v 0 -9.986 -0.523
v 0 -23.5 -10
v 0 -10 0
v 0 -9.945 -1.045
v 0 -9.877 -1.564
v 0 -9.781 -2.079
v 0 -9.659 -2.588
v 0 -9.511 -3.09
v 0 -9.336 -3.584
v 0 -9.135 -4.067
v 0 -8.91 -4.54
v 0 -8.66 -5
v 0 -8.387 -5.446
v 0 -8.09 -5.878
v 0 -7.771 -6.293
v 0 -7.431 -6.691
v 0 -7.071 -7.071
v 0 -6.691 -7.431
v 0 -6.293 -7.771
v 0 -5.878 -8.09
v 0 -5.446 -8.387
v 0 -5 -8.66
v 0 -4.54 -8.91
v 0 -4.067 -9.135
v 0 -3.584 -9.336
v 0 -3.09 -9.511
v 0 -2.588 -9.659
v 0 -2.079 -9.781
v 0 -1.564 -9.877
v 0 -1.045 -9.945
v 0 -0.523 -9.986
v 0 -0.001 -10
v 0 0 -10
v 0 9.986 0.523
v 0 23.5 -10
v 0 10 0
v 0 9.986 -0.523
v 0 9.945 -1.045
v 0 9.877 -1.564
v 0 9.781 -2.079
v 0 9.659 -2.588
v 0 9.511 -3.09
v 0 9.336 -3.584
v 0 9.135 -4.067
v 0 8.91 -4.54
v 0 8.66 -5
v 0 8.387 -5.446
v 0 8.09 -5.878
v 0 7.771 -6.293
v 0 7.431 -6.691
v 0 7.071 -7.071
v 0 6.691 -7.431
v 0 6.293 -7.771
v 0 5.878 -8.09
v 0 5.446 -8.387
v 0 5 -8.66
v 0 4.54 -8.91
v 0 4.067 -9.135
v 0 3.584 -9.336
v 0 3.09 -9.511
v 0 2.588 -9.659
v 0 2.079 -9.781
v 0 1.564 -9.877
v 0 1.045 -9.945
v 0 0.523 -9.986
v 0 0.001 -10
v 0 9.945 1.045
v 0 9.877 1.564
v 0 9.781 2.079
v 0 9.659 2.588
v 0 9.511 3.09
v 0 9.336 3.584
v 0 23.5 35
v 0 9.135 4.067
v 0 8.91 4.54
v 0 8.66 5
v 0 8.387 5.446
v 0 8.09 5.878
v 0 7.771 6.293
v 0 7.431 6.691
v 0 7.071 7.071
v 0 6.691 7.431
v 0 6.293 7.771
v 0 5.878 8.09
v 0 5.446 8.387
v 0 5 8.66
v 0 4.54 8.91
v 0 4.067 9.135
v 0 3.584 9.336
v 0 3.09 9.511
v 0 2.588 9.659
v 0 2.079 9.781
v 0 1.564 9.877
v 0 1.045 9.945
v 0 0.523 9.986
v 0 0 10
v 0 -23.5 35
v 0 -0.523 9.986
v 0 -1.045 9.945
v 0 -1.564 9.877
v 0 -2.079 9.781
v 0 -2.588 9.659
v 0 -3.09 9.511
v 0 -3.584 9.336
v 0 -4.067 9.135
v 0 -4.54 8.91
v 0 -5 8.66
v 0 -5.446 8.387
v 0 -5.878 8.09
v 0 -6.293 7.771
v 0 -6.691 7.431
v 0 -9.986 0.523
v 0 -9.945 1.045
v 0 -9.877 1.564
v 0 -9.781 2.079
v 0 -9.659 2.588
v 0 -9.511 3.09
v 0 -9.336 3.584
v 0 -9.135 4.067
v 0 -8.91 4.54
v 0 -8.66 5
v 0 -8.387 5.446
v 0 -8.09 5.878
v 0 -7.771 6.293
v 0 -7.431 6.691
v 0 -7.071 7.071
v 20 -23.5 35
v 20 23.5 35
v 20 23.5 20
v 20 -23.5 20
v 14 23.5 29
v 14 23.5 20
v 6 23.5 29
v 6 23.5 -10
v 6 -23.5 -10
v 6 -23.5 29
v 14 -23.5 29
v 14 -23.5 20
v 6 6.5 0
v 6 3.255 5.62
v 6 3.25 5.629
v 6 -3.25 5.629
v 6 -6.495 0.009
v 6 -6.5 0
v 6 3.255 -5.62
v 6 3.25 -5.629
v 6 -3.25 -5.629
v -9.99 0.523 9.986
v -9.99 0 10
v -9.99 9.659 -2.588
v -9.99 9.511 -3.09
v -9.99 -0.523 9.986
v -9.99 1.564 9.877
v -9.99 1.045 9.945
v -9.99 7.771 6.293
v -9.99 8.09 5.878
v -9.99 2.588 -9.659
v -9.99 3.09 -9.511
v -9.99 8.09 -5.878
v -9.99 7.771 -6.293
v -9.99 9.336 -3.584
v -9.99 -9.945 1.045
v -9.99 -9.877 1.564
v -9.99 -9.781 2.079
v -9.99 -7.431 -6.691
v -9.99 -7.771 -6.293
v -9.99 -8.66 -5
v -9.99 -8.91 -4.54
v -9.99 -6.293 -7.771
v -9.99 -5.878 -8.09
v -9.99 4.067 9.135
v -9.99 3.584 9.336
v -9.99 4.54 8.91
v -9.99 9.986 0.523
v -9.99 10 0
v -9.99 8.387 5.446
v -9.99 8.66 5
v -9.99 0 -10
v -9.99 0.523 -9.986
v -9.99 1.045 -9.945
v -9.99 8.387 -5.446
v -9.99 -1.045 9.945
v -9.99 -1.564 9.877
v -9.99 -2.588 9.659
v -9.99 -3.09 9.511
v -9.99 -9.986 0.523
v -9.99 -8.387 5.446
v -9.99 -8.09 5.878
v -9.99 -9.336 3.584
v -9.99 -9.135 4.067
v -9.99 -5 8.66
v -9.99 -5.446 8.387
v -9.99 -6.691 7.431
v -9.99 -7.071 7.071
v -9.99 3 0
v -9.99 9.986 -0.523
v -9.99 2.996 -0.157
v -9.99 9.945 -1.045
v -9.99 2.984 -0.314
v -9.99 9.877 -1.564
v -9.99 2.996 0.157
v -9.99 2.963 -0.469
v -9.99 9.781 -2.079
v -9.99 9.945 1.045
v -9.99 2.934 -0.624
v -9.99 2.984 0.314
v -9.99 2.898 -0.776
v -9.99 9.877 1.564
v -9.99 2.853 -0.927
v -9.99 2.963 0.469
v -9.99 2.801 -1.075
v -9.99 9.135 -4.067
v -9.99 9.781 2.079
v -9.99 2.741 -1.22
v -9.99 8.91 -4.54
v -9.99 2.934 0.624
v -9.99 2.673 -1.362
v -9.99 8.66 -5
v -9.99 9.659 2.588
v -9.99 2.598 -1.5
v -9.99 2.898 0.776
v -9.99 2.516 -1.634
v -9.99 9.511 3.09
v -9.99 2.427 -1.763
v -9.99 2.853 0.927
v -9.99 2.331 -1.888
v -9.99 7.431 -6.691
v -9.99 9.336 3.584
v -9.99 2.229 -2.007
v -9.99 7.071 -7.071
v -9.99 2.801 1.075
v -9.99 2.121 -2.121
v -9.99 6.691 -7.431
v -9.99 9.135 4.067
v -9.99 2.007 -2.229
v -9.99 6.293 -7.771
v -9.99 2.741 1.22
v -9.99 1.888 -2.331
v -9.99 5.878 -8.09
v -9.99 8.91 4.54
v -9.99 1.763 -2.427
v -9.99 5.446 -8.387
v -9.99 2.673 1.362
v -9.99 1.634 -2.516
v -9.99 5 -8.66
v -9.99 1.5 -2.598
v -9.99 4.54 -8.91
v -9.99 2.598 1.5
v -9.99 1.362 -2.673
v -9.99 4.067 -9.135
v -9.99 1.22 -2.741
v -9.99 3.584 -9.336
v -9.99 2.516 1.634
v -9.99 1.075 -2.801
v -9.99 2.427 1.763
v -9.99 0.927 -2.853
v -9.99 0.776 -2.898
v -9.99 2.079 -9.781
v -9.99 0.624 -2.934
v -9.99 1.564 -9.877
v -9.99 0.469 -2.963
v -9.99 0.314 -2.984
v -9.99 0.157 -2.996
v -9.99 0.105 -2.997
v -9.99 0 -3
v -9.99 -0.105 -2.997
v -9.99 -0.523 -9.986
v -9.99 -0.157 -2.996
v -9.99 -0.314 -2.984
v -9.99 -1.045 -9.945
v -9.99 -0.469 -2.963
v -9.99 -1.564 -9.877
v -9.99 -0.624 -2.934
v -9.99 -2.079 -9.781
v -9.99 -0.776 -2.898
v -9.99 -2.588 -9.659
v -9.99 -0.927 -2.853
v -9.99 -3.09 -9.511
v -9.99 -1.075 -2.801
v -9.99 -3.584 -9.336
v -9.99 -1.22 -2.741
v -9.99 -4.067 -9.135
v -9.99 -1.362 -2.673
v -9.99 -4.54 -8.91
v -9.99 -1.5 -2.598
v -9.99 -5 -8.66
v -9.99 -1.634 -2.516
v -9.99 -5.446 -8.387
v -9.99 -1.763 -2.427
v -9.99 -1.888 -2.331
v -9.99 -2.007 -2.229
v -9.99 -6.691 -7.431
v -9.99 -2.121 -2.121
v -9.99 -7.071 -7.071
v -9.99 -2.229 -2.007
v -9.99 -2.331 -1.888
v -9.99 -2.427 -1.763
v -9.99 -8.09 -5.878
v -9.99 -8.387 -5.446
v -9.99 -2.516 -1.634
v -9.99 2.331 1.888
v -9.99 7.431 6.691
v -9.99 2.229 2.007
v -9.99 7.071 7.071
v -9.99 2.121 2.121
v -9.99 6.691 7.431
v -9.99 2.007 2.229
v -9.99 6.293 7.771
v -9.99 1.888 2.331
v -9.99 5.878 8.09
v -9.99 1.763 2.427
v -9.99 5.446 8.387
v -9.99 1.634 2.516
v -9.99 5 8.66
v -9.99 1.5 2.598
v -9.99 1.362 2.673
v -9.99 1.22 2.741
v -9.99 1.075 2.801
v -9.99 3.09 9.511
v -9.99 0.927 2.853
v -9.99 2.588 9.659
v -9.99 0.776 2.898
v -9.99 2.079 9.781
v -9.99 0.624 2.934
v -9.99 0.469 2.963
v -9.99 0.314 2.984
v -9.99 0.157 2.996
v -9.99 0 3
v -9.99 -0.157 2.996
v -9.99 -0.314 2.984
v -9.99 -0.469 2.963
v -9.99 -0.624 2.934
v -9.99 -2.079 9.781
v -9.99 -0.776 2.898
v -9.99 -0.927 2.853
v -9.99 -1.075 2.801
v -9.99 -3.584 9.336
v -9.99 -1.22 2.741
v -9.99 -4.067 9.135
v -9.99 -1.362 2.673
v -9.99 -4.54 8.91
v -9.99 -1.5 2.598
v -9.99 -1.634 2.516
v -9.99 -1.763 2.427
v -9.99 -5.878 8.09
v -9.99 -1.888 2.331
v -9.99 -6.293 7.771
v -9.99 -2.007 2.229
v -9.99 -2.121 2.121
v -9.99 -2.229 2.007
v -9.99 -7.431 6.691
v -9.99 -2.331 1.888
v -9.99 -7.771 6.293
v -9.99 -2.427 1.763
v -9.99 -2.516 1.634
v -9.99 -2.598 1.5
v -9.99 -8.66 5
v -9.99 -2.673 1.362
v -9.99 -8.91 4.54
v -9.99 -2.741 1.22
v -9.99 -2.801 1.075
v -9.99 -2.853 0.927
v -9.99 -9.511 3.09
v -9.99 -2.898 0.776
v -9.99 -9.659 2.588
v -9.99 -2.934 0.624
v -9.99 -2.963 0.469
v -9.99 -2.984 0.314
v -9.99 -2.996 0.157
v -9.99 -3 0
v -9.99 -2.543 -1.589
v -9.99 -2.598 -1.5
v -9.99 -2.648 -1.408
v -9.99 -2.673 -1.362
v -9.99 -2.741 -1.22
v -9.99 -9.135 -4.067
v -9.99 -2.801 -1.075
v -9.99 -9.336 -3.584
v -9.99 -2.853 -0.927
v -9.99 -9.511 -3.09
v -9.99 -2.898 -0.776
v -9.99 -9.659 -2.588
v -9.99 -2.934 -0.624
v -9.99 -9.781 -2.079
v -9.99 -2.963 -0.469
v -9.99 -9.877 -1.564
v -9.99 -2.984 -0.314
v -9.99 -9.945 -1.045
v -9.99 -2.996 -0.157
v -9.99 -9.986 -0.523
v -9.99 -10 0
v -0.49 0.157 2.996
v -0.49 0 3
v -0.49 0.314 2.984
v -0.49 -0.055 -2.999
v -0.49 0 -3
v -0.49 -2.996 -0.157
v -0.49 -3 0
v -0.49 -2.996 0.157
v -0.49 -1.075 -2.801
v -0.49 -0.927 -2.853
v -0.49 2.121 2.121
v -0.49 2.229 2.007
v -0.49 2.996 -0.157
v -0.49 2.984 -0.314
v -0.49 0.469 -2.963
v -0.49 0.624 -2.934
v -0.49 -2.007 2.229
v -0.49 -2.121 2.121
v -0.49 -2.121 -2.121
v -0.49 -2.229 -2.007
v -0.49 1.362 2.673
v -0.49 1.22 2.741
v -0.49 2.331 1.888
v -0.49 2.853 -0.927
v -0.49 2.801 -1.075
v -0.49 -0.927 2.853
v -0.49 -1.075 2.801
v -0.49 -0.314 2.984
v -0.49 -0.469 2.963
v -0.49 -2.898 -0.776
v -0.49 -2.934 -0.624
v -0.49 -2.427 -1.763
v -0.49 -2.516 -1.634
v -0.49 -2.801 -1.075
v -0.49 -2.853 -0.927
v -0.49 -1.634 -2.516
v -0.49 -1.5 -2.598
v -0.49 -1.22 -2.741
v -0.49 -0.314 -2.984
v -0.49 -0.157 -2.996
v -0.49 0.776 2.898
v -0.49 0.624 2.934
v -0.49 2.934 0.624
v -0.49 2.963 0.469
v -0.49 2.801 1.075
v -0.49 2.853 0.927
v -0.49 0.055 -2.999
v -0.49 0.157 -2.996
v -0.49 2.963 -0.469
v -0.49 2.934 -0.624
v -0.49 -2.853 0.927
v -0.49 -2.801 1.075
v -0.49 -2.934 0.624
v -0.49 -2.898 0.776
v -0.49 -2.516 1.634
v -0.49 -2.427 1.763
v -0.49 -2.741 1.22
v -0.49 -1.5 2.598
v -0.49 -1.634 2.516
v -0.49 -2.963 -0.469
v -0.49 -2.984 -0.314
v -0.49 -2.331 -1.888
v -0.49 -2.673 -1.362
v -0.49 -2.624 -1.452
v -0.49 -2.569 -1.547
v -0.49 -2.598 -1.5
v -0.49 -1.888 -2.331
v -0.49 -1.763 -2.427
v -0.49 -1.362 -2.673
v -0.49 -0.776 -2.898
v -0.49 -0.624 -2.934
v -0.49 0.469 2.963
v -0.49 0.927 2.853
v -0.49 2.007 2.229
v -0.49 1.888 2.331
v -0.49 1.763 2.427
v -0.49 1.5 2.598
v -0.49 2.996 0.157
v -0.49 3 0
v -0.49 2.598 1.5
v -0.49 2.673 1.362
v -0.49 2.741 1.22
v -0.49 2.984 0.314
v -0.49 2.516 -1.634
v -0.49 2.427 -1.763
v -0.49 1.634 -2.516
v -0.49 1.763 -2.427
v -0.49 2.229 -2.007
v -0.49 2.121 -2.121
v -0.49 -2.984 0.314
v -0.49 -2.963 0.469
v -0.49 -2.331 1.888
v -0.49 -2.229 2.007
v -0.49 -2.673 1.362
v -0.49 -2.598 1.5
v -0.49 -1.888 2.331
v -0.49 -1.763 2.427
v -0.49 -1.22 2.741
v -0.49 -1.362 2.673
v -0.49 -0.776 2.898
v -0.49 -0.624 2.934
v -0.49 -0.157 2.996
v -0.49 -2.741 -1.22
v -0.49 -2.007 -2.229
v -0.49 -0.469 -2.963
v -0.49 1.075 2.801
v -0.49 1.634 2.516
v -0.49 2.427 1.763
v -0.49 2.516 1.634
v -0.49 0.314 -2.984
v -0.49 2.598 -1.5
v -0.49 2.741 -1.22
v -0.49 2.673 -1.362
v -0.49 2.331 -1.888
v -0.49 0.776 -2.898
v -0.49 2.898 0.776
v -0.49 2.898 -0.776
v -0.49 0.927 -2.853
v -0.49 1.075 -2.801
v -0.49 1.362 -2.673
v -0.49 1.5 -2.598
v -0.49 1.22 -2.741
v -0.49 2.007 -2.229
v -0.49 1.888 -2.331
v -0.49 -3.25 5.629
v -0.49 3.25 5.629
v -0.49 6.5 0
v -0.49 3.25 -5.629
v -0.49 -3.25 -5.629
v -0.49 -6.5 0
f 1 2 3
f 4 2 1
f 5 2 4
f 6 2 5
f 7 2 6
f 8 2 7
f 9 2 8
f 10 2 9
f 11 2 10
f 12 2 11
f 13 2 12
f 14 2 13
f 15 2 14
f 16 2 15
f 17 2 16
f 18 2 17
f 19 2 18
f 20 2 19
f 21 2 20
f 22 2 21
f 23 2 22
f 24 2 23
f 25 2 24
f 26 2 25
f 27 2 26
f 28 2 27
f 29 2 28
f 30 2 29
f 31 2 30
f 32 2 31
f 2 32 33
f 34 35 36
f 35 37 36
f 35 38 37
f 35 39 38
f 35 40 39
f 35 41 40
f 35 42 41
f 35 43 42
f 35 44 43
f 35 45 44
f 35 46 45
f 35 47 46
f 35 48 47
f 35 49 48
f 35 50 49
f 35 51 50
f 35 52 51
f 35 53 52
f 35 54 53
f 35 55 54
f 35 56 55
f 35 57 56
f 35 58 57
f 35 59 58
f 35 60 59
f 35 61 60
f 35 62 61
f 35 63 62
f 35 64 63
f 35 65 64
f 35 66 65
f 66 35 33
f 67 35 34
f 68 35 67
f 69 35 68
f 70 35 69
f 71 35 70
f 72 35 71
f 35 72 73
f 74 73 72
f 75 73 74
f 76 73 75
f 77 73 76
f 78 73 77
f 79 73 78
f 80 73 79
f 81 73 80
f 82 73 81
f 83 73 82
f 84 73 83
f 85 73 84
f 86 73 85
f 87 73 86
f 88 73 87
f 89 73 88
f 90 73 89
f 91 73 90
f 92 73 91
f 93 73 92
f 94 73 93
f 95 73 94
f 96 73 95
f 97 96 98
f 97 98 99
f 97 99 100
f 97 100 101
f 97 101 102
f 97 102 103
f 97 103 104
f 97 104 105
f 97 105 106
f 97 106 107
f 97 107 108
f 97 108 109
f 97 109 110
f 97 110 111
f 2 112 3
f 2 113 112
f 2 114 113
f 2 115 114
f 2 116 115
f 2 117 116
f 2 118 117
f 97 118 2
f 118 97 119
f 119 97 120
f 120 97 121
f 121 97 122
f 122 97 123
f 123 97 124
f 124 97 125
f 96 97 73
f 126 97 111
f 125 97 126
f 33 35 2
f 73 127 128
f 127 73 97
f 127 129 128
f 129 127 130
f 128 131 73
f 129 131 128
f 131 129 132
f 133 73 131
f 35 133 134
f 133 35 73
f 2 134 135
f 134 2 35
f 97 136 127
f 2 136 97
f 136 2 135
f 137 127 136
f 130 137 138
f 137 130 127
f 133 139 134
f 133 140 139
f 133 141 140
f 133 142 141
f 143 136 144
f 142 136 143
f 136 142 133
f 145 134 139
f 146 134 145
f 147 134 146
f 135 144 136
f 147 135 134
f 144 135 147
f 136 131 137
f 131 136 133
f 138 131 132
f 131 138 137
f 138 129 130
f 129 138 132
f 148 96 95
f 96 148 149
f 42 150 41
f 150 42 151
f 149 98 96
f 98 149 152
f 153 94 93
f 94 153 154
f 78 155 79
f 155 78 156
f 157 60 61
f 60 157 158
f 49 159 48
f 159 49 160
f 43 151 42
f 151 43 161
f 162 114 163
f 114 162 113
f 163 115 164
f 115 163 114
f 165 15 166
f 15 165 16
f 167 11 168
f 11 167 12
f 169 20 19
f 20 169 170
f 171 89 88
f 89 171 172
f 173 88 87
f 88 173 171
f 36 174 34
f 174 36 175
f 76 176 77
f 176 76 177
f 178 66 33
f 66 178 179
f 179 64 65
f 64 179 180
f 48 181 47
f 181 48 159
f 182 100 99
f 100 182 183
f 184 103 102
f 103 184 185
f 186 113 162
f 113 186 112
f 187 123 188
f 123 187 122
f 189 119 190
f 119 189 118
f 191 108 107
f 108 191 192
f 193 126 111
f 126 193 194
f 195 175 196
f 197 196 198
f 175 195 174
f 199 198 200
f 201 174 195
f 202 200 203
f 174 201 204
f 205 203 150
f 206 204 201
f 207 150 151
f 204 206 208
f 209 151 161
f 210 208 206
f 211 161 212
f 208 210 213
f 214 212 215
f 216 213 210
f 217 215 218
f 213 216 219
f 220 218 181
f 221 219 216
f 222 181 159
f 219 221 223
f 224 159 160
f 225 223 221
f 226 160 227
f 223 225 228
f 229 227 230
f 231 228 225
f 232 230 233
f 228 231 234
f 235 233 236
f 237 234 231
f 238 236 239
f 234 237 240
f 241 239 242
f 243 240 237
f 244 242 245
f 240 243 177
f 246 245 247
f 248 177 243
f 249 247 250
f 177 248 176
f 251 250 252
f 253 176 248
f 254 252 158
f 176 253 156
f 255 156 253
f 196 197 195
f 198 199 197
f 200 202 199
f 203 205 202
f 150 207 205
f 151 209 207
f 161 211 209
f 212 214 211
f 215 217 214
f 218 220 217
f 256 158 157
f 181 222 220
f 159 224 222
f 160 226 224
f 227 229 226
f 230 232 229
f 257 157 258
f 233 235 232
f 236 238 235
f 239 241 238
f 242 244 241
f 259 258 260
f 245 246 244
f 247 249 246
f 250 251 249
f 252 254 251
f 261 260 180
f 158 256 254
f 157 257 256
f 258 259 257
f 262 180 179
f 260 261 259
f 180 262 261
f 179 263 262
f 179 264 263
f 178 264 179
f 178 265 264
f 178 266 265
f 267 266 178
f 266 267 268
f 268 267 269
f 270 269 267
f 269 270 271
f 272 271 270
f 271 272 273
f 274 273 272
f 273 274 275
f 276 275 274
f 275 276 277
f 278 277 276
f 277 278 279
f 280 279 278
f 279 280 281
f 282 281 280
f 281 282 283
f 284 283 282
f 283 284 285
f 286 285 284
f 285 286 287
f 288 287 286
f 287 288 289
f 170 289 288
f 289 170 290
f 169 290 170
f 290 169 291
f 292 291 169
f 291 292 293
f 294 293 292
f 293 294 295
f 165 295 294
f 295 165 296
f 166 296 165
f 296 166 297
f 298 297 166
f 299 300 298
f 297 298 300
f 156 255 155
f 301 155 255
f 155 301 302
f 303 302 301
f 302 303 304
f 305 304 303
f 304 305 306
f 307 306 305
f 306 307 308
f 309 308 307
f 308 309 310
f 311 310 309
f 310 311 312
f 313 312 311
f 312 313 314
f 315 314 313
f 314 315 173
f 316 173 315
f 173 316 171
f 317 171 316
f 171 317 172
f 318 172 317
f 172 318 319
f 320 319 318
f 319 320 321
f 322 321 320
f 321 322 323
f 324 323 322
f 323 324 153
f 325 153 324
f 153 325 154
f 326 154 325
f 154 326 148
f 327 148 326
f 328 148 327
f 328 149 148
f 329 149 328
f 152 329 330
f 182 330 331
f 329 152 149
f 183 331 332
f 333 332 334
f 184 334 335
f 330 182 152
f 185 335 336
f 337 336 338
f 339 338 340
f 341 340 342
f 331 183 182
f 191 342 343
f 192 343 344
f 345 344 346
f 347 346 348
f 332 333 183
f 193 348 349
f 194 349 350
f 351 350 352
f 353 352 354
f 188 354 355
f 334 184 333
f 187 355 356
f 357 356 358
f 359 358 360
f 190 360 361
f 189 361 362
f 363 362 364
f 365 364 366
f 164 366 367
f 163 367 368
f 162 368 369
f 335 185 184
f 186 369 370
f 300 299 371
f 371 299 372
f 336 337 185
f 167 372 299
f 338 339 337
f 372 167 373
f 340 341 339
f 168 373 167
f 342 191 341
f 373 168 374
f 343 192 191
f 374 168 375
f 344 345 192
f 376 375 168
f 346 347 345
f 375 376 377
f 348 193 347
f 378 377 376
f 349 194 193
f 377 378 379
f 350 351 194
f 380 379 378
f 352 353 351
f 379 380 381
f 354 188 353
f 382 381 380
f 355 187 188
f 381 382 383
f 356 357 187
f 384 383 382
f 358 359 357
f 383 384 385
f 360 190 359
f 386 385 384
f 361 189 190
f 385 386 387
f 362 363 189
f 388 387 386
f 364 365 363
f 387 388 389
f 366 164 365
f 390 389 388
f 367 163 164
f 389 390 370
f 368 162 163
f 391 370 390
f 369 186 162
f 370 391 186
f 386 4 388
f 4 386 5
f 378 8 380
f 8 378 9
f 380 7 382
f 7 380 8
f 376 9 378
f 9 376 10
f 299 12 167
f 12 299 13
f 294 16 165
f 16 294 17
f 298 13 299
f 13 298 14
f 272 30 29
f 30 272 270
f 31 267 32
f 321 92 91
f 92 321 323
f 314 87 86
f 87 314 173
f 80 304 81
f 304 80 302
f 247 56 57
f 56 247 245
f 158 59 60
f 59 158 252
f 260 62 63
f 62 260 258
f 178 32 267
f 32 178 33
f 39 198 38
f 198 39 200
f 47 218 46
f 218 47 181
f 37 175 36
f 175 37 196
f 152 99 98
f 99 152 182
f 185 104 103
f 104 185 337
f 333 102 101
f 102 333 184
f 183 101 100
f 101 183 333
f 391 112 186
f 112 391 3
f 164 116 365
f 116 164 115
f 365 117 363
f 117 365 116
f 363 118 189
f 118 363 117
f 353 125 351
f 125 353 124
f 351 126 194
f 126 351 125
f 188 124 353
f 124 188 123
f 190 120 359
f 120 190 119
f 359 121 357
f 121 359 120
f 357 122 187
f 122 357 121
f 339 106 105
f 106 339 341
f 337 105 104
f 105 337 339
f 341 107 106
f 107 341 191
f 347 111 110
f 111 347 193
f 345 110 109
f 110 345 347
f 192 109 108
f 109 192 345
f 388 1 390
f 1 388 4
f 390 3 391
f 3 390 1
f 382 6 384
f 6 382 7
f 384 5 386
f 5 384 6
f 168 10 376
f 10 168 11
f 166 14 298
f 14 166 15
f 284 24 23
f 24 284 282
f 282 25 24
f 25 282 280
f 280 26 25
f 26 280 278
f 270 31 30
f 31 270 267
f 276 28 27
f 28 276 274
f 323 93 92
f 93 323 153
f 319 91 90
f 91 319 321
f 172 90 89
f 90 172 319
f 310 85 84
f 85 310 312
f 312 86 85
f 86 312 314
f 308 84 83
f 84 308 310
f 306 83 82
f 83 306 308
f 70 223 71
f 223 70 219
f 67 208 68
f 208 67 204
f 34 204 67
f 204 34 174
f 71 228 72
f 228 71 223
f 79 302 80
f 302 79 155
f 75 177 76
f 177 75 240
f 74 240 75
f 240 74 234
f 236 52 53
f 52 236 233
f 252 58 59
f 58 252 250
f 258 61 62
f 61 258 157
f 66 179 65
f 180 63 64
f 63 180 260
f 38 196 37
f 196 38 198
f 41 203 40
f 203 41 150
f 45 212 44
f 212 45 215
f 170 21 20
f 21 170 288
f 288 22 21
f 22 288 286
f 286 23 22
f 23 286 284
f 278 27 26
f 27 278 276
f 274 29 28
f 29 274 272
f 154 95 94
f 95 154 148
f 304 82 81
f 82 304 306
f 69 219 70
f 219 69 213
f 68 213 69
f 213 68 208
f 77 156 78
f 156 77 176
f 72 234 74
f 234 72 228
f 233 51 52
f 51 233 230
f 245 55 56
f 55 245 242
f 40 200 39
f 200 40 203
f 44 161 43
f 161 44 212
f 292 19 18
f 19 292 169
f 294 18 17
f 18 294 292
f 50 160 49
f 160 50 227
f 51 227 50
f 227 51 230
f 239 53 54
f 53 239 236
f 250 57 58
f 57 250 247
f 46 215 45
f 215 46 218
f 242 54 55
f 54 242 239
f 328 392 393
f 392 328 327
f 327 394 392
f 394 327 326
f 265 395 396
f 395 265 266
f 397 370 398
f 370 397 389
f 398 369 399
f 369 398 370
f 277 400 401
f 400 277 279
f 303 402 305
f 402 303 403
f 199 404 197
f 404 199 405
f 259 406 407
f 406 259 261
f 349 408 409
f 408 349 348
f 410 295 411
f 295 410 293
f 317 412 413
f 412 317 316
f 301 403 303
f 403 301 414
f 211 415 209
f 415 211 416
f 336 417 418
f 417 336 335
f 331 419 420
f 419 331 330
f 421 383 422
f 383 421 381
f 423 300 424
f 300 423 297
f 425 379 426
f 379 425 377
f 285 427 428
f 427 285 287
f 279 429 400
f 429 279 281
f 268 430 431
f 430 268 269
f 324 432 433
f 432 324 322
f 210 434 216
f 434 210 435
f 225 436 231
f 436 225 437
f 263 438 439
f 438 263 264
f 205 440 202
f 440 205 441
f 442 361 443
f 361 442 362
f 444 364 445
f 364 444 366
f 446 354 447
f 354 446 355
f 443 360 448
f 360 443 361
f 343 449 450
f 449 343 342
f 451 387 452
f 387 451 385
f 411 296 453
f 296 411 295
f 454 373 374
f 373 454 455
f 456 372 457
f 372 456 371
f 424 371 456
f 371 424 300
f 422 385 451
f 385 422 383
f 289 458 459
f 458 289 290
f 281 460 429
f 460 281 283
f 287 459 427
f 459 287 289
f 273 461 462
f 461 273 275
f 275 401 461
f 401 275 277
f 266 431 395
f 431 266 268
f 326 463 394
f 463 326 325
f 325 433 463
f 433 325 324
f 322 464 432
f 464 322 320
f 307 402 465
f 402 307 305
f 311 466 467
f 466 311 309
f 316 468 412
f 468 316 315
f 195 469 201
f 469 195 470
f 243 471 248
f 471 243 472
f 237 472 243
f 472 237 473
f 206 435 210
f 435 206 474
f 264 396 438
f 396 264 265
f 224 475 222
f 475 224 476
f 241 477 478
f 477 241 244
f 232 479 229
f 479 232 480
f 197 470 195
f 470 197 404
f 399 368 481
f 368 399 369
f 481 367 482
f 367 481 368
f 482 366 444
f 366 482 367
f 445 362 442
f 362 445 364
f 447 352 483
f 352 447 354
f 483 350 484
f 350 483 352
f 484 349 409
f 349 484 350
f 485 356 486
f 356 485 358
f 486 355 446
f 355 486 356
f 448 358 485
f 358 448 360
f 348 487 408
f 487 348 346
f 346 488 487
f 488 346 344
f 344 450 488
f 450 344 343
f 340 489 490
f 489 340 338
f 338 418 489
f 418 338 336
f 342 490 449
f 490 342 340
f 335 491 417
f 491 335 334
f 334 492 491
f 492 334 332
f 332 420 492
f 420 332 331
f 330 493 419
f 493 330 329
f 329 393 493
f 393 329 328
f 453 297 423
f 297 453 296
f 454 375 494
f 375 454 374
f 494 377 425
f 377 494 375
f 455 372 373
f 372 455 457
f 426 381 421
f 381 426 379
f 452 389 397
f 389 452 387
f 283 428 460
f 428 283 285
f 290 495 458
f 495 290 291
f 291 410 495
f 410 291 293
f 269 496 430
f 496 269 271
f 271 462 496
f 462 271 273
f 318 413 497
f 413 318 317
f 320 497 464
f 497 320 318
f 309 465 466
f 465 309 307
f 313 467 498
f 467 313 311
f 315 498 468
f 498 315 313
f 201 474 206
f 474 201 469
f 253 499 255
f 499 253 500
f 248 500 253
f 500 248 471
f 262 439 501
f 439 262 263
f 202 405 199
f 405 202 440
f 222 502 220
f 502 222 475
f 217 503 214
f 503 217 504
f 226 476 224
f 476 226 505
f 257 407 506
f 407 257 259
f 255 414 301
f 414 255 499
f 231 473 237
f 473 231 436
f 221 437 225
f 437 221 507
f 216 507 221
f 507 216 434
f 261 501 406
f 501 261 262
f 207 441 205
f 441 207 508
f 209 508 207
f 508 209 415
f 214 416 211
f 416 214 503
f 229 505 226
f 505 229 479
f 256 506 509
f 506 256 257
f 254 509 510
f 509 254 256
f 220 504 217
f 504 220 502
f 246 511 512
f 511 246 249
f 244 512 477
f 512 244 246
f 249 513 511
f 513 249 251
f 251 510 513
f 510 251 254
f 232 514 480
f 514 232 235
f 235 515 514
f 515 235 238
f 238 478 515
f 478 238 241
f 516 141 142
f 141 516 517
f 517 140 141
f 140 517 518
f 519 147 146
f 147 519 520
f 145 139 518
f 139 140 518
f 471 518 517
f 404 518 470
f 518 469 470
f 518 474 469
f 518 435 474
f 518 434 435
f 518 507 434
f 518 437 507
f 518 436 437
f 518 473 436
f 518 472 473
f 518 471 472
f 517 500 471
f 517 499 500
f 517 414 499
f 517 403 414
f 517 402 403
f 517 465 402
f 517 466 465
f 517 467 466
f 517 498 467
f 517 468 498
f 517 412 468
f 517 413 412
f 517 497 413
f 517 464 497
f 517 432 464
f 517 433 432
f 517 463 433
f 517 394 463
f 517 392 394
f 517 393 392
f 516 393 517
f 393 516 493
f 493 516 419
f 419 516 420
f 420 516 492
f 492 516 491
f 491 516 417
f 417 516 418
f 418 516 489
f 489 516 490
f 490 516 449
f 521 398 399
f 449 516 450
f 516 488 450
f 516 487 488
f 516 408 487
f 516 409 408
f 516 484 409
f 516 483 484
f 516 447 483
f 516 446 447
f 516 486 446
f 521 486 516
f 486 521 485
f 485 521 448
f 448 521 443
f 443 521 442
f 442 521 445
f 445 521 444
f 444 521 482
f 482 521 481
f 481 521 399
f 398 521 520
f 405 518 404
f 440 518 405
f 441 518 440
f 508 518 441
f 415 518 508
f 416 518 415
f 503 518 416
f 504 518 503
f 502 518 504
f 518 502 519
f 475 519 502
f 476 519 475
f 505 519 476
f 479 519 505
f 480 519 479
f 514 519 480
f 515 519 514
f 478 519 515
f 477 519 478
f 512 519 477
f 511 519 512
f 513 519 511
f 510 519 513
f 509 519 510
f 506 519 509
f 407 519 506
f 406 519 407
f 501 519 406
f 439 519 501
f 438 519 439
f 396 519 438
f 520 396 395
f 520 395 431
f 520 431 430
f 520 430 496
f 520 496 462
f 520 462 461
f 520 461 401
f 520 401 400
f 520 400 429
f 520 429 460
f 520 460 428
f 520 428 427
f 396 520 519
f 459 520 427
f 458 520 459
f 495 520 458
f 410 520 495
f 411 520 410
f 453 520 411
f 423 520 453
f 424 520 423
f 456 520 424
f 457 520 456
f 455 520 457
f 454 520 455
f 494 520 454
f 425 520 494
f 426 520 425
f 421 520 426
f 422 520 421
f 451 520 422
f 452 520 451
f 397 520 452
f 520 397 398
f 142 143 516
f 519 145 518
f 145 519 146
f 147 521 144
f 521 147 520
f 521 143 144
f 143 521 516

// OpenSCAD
// The width of the hanger. Should fit the printer's slot width.
hanger_width = 47;  

// The height of the hanger tab. Should fit the printer's slot height.
inner_tab_height = 15;

// The width of the hanger slot. Should fit printer's wall thickness.
slot_thickness = 8;

// The external height of the hanger.
hanger_height = 45;

// The length of the rod. Should fit the spool inner width.
rod_length = 75;  

// The diameter of the rod.
rod_diameter = 25;

// The ehight of the top of the rod from the bottom of the hanger.
rod_height = 18;

// Raise the end of the rod by this angle. Use to compensate for 
// free play in the hanger slot.
rod_pitch_angle = 1.0;

// Thickness of the hanger's walls.
hanger_wall = 6;

// The height of the end stopper above the top of the rod.
stopper_margin = 6;

// The thickness of the stopper at the end of the rod.
stopper_thickness = 4;

/* [Hidden] */

// Faces per cylinder.
$fn=120;

hanger_thickness = slot_thickness + 2*hanger_wall;

stopper_diameter = rod_diameter+2*stopper_margin;

rod_radius = rod_diameter/2;

rod_center_z = -(rod_radius - rod_height);

// The size of the support at the corner between the rod and the hanger.
corner_size = 4;

// Adding to the internal tab a bump with diagonal edges for easier 
// alighment into the printer hole.
bump_size = 5;

// Small values to maintain manifold.
eps1 = 0.01;
eps2 = 2*eps1;


module bump() {
  translate([hanger_thickness-eps1, -hanger_width/2, hanger_height]) 
  rotate([0, 90, 0]) hull() {
    cube([inner_tab_height, hanger_width, eps1]);  
    translate([bump_size, bump_size, bump_size-eps1])
      cube([inner_tab_height - 2*bump_size, hanger_width-2*bump_size, eps1]);  
  }
}

module hanger() {
  translate([0, -hanger_width/2, 0]) 
  difference() {
    cube([hanger_thickness,  hanger_width, hanger_height]);
    
    translate([hanger_wall, -eps1, -eps1]) 
      cube([slot_thickness, hanger_width+eps2, hanger_height-hanger_wall+eps1]);
    
    translate([hanger_wall + slot_thickness - eps1, -eps1, -eps1]) 

      cube([hanger_wall+eps2, hanger_width+eps2, hanger_height-inner_tab_height+eps1]);
  }
}

//module rod() {
//  intersection() {
//    union() {
//      // Rod.
//      translate([0, 0, rod_center_z]) rotate([0, -90, 0]) 
//          cylinder(d= rod_diameter, h=   rod_length);
//      // Corner support.
//      translate([0, 0, rod_center_z]) rotate([0, -90, 0]) 
//          cylinder(d1=  rod_diameter+2*corner_size, d2=rod_diameter, h=corner_size); 
//    }
//    // Cut bottom.
//    translate([-rod_length-eps1, -rod_diameter, -eps1]) 
//        cube([rod_length+eps2, 2*rod_diameter, rod_height + corner_size+ eps1]);
//  }
//}

//module stopper() {
//  translate([-rod_length, 0, 0])  
//  intersection() {
//    translate([0, 0, rod_center_z]) rotate([0, -90, 0]) 
//      cylinder(d=stopper_diameter, stopper_thickness);  
//    
//     translate([-stopper_thickness-eps1, -rod_diameter/2, 0]) 
//       cube([stopper_thickness+eps2, rod_diameter, stopper_diameter]);
//  }
//}

//module main() {
//  hanger();
//  bump();
//  rotate([0, rod_pitch_angle, 0]) union() {
//    translate([eps1, 0, 0]) rod();
//    translate([eps2, 0, 0]) stopper();
//  }
//}

difference() {
  union() {
    translate([0, 0, -10]) hanger();
    translate([eps1, 0, 0]) rotate([0, -90, 0]) cylinder(d=20, h=10);
  }

  translate([10, 0, 0]) rotate([0, -90, 0]) cylinder(d=6, h=30);
  
   translate([6+eps1, 0, 0]) rotate([30, 0, 0]) rotate([0, -90, 0]) #cylinder(d=13, h=6.5, $fn=6);
}

//main();

// Transformation to printing orientation. This keeps the 3D fibers 
// along the rod and the hanger for max strength. Make sure to 
// enable support material.
//translate([0, 0, hanger_width/2]) rotate([-90, 0, 0]) main();
